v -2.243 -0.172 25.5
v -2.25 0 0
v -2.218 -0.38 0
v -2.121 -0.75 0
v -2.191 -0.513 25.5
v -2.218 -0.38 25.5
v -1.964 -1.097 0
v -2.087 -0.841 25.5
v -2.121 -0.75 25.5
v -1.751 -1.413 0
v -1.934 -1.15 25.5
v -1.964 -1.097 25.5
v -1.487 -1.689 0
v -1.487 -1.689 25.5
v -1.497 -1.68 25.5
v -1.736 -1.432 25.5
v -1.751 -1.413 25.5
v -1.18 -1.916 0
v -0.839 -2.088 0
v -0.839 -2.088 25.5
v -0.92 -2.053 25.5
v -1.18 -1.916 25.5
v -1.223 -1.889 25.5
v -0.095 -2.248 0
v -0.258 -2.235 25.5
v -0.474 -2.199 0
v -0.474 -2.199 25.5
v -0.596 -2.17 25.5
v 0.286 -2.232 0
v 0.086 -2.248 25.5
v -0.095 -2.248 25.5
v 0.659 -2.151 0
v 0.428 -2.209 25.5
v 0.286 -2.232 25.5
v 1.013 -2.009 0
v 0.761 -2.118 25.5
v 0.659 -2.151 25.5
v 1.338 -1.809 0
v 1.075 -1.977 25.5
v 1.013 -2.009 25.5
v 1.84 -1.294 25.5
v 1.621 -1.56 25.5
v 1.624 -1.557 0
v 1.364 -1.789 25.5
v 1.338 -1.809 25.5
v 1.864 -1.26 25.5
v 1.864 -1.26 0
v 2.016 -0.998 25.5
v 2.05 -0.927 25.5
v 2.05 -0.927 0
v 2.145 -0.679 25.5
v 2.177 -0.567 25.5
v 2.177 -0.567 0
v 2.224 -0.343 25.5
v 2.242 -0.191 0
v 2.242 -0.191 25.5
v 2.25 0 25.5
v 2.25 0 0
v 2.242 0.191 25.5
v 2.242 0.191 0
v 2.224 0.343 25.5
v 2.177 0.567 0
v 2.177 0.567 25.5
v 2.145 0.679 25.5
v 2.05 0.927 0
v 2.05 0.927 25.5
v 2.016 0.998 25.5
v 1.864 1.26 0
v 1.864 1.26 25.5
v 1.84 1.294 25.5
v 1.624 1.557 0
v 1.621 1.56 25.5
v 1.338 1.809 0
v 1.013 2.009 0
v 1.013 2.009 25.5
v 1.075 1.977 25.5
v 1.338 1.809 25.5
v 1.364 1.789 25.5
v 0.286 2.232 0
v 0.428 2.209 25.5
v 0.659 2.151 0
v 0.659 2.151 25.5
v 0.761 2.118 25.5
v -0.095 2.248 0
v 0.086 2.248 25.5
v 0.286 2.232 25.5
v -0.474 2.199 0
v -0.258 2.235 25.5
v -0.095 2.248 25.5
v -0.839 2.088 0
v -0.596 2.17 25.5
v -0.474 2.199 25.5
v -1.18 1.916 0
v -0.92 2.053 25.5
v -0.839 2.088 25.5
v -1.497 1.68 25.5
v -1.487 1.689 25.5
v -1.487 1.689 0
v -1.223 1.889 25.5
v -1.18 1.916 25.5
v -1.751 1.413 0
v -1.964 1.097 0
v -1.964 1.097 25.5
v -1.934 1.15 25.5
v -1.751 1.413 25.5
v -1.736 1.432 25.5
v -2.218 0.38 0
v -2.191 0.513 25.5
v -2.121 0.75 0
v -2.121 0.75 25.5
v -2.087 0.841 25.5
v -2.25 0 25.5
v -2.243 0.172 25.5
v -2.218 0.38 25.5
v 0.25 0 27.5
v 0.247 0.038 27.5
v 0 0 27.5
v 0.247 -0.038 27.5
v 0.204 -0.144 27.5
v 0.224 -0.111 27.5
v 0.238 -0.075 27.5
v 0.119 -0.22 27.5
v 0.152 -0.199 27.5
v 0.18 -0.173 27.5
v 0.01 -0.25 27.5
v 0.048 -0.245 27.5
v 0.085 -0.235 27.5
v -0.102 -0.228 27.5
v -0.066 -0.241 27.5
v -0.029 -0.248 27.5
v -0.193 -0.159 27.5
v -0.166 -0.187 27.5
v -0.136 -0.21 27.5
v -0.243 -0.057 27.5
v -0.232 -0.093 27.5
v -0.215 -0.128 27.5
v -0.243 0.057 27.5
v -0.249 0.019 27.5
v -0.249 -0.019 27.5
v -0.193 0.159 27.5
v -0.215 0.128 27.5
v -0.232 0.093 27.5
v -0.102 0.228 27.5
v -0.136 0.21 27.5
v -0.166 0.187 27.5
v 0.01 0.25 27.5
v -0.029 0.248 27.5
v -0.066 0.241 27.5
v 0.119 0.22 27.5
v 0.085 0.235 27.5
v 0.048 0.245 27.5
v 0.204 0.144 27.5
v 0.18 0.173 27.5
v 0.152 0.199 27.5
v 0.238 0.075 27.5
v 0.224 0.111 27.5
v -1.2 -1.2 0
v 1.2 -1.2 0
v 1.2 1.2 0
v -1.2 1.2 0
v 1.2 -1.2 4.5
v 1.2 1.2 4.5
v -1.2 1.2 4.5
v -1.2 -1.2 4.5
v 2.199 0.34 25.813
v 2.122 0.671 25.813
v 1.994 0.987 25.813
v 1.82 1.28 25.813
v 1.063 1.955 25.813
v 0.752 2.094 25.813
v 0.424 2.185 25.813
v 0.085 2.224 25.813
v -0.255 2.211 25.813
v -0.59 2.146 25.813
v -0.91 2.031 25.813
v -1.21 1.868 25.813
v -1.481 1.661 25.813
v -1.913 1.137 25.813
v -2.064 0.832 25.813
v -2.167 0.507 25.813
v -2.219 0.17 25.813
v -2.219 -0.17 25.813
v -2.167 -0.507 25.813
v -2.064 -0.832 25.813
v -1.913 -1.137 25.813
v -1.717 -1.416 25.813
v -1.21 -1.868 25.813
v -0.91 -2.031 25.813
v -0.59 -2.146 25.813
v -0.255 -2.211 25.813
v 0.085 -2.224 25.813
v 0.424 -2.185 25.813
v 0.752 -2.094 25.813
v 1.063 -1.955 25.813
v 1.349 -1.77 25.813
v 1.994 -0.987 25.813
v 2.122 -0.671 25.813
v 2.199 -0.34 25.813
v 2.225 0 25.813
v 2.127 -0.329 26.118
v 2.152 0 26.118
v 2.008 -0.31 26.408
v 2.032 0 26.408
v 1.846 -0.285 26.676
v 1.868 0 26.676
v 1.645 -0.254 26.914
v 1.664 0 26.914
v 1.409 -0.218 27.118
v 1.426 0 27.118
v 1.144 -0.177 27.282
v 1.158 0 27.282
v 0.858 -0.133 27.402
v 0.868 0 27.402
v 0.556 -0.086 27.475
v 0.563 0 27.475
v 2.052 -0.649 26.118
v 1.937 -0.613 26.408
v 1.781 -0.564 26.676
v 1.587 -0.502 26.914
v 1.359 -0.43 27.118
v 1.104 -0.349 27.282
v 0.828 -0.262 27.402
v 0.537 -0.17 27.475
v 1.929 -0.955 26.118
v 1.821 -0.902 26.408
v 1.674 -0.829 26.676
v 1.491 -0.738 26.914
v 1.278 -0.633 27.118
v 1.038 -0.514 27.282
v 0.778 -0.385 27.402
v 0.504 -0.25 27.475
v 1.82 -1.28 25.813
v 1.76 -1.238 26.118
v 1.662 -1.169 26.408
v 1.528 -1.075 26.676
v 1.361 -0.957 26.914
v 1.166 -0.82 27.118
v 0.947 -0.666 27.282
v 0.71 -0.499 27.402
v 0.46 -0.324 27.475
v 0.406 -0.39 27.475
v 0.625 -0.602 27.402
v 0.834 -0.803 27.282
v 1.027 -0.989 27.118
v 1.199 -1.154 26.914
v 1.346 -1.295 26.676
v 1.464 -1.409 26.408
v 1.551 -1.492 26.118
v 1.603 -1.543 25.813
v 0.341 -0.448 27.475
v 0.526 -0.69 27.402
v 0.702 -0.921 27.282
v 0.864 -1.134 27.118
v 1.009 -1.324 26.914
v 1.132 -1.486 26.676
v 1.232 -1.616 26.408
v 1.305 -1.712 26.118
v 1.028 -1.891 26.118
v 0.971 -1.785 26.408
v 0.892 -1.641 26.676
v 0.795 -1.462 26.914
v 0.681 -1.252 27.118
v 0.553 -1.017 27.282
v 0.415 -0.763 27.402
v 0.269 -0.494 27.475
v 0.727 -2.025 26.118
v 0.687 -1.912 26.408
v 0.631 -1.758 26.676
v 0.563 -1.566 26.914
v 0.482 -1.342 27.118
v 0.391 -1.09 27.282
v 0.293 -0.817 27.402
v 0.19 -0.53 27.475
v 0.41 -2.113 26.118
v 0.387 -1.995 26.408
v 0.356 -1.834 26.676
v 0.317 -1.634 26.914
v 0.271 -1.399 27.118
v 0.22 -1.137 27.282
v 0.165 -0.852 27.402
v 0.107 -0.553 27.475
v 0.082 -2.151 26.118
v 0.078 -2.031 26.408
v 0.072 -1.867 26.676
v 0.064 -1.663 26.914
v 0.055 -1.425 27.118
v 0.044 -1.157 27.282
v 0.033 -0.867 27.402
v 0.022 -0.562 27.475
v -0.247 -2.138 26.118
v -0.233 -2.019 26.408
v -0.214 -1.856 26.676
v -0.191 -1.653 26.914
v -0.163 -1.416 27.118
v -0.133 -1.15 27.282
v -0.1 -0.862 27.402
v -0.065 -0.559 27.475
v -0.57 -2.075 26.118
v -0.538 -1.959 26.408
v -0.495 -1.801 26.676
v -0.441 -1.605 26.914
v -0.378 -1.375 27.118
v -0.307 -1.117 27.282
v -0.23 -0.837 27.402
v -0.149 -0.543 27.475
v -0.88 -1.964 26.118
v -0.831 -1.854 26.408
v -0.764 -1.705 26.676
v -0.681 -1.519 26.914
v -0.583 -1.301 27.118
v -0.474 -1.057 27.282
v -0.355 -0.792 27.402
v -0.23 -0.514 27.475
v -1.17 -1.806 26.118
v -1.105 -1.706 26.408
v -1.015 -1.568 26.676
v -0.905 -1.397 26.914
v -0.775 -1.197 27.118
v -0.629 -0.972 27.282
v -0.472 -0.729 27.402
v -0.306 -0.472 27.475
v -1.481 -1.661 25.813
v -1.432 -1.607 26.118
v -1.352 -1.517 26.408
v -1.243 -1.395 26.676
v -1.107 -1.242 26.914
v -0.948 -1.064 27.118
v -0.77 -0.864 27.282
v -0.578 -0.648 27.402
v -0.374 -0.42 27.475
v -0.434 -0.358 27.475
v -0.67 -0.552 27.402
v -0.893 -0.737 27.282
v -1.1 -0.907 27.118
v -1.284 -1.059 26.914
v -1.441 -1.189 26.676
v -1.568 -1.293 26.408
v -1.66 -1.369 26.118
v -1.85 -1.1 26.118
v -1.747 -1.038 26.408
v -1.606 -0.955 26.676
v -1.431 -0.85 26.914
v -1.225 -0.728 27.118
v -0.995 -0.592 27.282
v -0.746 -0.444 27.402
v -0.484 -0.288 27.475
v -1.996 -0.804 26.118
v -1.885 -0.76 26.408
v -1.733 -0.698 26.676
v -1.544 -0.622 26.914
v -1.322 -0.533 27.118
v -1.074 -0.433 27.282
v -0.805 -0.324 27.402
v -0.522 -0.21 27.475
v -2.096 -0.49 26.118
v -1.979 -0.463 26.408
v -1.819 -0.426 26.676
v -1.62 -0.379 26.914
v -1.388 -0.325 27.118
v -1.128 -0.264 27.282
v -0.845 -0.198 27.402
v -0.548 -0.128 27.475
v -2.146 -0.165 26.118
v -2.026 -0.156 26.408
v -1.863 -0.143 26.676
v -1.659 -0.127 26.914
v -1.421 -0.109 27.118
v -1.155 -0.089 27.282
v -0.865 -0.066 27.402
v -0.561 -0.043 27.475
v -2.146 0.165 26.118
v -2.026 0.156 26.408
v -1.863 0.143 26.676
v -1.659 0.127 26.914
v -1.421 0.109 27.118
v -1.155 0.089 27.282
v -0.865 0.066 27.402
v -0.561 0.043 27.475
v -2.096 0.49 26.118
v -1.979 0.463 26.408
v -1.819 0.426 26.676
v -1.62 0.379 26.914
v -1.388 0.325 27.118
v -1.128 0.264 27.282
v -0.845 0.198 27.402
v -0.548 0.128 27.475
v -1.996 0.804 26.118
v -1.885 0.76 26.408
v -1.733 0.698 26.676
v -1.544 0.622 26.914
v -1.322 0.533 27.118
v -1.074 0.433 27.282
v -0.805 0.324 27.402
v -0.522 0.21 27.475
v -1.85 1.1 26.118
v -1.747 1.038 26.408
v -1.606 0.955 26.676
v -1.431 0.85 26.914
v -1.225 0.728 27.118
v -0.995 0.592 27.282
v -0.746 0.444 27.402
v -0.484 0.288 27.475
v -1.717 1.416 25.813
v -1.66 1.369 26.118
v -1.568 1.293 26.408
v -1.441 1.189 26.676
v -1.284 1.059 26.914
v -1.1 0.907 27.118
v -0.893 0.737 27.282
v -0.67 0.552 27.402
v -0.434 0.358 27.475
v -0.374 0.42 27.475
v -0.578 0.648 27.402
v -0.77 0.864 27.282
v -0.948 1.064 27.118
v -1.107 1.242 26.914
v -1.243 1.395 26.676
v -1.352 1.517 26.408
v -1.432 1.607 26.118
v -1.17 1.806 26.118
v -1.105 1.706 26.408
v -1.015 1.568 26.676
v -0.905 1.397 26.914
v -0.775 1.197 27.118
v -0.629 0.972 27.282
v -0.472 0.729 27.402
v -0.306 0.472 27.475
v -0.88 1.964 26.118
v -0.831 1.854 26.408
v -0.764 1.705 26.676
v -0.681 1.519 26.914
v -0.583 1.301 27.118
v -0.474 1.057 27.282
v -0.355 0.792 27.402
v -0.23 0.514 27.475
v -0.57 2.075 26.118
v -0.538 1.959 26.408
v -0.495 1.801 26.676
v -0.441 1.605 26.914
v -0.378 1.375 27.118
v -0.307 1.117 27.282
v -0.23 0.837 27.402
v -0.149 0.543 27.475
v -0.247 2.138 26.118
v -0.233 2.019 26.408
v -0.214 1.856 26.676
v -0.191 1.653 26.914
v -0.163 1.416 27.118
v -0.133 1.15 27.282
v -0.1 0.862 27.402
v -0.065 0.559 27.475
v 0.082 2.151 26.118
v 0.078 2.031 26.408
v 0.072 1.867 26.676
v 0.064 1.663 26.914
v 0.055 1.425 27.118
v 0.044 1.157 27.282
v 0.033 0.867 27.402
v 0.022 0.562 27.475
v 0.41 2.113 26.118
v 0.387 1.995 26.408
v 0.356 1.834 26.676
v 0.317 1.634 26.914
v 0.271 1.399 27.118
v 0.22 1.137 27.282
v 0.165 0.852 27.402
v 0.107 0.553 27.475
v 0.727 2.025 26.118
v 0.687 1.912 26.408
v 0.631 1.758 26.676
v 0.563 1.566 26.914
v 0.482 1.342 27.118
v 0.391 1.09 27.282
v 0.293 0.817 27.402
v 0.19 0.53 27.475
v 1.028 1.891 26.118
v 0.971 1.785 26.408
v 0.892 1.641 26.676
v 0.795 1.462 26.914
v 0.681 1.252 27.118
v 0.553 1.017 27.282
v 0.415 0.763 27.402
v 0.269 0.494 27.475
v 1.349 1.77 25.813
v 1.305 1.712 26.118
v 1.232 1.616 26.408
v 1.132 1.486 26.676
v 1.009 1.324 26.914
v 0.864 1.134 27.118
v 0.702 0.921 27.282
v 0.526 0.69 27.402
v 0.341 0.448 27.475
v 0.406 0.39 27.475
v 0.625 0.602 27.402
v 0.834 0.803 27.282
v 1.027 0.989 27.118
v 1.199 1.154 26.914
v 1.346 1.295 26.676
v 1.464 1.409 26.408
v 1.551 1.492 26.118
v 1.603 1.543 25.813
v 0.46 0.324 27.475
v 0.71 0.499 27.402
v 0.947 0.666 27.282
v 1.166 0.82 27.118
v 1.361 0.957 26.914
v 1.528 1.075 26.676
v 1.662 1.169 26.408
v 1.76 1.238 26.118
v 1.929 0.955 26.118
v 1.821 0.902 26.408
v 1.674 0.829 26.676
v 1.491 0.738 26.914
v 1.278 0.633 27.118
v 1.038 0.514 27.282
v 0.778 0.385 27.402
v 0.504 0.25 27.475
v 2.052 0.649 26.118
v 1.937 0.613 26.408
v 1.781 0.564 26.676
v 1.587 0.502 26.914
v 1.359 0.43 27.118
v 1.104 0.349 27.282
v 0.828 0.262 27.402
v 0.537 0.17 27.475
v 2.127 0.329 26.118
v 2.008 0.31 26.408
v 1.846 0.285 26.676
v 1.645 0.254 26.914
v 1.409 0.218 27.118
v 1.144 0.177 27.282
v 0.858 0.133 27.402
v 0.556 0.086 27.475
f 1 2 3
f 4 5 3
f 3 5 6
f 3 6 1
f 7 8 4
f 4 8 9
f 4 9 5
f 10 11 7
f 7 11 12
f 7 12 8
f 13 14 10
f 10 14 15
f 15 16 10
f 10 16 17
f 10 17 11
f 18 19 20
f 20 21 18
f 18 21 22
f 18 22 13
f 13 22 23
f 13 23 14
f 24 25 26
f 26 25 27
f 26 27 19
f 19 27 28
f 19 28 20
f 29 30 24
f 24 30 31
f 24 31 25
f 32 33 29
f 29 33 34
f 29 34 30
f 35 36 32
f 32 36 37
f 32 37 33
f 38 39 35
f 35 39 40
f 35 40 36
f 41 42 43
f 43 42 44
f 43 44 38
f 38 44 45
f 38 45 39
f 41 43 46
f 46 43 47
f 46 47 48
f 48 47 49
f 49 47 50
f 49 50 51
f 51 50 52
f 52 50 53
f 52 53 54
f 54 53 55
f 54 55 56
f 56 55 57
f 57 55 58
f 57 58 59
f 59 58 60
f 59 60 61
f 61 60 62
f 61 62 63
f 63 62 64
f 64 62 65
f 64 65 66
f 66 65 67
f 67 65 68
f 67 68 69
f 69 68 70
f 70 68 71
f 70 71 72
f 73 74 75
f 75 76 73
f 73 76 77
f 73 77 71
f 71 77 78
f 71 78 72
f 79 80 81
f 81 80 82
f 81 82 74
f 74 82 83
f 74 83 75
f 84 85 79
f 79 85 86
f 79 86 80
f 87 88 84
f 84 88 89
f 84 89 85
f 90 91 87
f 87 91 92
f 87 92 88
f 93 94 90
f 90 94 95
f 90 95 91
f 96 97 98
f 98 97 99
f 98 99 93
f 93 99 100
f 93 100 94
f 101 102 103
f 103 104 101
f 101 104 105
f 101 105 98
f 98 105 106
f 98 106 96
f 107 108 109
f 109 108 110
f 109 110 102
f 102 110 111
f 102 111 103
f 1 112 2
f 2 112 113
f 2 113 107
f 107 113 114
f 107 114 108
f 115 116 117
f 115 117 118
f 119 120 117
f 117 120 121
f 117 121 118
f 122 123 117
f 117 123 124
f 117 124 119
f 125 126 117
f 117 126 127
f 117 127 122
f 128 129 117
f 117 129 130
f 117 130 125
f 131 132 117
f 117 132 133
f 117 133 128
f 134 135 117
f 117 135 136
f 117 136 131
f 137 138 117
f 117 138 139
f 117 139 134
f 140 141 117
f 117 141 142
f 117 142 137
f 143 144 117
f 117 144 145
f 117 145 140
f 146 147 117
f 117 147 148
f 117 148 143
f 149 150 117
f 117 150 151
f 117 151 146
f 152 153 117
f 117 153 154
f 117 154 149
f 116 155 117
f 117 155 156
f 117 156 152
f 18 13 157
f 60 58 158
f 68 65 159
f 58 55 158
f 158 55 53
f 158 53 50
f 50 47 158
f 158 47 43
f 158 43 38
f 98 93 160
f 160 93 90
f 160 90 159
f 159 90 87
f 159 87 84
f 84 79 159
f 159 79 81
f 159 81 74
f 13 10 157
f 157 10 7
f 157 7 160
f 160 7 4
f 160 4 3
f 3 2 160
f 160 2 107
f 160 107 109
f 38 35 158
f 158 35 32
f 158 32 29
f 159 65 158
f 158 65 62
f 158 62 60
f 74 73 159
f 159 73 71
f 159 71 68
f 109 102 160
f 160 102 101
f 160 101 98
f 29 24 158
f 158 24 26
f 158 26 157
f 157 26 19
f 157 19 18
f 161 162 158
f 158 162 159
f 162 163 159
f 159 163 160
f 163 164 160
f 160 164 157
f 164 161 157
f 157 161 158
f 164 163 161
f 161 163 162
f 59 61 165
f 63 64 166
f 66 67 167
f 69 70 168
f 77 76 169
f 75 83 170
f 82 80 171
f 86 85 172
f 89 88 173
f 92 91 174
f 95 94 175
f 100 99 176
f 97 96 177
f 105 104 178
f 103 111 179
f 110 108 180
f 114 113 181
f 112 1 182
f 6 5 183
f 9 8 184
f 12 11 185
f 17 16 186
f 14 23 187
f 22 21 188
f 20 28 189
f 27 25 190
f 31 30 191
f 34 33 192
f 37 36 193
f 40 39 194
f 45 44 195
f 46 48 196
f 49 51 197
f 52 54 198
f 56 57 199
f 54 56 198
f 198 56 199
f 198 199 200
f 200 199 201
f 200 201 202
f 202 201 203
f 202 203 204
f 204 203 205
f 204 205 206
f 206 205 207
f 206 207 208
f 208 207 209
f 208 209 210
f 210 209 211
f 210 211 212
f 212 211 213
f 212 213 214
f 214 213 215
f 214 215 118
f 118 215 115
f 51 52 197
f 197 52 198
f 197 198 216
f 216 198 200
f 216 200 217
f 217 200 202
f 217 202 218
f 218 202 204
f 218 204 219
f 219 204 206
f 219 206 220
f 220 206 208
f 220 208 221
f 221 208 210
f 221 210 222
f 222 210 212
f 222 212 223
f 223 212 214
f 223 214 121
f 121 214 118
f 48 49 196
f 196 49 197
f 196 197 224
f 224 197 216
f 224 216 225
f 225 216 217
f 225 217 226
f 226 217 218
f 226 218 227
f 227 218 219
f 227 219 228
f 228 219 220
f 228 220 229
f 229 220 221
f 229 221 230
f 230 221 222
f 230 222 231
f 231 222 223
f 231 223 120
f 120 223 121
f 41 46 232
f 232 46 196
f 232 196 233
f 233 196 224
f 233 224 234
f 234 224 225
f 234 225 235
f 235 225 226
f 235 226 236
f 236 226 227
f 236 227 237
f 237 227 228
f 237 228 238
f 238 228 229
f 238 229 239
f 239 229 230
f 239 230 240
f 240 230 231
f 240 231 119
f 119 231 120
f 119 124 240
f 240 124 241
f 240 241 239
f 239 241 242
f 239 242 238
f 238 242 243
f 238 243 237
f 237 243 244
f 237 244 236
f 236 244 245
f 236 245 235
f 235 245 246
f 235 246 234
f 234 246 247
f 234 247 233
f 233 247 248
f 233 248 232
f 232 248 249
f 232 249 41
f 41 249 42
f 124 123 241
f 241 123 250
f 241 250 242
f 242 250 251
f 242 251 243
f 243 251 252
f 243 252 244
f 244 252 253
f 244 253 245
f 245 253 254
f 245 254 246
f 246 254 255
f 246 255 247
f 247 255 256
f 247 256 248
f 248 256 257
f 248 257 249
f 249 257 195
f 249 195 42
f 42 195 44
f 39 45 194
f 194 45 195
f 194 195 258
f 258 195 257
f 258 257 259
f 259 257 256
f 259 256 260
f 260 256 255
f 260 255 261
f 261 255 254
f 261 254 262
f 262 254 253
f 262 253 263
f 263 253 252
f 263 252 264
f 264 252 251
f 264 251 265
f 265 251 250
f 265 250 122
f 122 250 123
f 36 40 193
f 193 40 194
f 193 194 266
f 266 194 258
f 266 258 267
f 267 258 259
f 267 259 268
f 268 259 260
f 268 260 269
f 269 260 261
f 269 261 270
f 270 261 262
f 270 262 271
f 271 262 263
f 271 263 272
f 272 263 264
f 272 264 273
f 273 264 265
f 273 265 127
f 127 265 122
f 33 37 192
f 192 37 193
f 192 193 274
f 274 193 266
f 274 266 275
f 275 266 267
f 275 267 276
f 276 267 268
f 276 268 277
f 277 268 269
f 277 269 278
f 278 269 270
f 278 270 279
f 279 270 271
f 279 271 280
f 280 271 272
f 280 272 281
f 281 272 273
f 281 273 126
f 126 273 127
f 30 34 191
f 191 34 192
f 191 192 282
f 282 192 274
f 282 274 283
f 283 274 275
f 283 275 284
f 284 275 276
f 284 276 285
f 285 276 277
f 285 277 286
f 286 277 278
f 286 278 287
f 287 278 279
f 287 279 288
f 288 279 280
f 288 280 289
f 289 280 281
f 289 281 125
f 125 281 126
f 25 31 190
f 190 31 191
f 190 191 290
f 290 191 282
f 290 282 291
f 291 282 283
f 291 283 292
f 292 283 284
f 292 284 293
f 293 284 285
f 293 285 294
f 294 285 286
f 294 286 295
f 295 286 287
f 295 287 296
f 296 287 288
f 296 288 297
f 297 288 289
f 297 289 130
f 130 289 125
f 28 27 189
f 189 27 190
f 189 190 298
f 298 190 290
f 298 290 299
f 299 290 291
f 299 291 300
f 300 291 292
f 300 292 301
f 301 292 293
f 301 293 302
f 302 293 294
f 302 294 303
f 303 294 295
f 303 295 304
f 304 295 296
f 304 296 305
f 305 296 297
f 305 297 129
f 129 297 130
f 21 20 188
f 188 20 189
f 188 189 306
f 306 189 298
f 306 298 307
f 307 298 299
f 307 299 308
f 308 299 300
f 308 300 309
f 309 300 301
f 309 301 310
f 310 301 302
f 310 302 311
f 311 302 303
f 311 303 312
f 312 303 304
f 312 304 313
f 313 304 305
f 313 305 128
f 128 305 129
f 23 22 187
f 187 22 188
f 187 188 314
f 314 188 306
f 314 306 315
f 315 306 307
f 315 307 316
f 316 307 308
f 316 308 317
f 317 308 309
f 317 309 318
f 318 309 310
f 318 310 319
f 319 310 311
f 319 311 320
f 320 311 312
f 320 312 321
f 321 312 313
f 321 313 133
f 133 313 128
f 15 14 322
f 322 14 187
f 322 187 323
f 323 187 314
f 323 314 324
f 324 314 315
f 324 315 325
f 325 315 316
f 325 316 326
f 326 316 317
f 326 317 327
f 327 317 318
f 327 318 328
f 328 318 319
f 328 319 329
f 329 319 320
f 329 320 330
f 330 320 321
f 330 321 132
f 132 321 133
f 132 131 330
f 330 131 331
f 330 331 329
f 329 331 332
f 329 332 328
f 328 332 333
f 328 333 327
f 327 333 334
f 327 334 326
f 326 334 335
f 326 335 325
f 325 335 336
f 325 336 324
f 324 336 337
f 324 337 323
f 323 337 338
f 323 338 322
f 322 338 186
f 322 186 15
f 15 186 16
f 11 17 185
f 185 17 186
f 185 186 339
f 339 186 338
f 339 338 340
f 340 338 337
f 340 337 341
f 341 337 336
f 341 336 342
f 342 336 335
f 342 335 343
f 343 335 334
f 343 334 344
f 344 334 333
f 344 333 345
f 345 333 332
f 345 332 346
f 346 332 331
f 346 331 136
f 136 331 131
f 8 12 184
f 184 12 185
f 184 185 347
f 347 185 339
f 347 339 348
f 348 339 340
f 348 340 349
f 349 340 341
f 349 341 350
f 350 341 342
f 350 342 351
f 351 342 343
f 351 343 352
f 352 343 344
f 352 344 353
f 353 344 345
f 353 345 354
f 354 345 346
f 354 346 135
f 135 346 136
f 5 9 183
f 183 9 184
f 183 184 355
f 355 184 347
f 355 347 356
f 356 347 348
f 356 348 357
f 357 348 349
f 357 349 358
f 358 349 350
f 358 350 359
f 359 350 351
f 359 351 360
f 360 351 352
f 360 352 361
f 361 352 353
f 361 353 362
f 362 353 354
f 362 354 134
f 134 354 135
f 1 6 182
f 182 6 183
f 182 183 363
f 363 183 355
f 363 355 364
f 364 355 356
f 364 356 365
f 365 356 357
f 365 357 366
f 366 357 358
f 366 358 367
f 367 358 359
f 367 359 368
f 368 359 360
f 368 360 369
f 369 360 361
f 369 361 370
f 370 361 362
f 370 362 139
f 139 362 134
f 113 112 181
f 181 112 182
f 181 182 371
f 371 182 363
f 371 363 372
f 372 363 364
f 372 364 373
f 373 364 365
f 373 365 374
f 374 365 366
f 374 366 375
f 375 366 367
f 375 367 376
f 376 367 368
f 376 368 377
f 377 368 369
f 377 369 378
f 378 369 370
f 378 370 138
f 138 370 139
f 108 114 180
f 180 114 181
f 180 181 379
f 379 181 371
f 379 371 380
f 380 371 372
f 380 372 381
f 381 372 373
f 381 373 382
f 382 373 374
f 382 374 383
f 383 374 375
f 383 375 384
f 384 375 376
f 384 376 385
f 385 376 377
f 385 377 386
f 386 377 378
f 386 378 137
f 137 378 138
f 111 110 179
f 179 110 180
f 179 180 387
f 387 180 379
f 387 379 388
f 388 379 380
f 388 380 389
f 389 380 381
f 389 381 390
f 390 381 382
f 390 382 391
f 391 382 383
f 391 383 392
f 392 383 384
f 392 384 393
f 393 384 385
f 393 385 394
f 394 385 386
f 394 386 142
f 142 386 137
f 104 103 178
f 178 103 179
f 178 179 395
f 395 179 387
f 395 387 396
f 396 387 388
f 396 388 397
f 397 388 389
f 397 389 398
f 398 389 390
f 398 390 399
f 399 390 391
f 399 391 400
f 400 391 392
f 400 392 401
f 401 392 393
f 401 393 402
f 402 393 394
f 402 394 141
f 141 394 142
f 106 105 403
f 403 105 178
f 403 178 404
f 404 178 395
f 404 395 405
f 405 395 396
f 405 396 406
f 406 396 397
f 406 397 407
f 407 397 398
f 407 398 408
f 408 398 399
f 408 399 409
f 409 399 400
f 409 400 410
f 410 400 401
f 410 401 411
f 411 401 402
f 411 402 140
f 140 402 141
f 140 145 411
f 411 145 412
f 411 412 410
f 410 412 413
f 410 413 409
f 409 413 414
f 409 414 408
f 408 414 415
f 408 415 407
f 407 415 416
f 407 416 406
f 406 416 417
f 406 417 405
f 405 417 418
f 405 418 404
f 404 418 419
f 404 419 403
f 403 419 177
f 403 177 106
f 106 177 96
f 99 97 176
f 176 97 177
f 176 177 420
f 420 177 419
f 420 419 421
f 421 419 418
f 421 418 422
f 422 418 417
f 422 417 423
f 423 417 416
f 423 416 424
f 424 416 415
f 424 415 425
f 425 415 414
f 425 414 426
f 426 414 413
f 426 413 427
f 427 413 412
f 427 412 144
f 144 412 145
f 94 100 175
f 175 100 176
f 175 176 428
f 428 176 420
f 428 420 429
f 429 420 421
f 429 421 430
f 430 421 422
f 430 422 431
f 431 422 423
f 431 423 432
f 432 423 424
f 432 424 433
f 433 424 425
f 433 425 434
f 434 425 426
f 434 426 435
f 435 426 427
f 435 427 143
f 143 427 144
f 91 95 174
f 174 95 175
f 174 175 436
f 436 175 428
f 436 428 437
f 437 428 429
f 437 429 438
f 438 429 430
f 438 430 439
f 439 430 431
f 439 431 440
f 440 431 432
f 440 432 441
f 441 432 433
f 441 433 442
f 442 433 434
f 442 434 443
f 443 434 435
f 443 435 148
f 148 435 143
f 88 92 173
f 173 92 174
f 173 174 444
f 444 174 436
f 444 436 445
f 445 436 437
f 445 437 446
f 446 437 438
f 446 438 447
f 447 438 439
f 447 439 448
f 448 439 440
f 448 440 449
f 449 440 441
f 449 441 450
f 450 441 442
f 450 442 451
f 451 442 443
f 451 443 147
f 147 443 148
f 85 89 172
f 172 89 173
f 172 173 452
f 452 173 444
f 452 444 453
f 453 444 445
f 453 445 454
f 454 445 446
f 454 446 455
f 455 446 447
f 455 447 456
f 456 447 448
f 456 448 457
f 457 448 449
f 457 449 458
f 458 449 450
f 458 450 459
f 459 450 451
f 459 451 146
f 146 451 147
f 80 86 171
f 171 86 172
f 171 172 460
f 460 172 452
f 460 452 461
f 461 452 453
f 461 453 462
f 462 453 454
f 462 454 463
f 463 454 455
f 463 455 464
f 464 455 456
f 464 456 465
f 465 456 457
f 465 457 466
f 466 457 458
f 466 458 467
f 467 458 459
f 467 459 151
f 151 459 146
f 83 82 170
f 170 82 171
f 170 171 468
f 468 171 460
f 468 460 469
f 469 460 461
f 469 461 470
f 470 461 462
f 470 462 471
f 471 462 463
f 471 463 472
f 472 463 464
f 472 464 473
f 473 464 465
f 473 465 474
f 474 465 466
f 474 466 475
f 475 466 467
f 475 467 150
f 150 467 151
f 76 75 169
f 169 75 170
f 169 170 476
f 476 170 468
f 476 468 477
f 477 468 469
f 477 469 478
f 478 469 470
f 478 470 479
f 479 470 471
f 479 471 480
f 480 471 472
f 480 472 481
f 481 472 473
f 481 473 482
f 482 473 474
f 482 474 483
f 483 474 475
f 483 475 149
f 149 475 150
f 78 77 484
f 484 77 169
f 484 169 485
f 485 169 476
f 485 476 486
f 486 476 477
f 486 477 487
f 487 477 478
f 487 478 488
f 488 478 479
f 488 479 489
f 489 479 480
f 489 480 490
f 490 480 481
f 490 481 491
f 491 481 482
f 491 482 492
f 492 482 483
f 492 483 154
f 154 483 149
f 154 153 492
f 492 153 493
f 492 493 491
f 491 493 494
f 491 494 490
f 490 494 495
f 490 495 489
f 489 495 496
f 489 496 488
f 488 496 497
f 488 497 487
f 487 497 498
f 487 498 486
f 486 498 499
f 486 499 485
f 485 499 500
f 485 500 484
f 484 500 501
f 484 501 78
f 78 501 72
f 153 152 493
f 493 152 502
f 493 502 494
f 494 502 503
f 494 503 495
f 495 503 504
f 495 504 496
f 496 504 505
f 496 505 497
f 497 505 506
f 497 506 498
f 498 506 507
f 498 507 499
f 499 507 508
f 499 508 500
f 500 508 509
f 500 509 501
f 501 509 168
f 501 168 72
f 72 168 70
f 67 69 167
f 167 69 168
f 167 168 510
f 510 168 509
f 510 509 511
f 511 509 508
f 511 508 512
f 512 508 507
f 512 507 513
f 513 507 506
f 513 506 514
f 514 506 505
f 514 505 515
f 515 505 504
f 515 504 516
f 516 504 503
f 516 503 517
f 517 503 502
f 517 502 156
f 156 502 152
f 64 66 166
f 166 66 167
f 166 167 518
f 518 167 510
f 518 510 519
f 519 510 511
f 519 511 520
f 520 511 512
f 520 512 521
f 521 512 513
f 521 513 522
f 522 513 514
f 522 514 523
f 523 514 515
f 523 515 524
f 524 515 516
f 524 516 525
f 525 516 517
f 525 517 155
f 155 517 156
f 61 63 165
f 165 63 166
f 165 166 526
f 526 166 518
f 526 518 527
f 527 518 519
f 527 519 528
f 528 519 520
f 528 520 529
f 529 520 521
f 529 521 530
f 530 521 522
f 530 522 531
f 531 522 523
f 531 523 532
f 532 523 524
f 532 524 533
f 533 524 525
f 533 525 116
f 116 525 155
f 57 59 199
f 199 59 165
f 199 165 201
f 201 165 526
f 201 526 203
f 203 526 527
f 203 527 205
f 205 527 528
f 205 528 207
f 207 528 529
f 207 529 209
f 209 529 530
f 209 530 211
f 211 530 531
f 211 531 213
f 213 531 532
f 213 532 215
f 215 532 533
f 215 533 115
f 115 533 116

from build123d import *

# Parameters (mm, degrees)
SKETCH_1_R          = 2.25
EXTRUDE_2_DEPTH     = 27.5
SKETCH_7_W          = 2.4
SKETCH_7_H          = 2.4
CUT_EXTRUDE_3_DEPTH = 4.5
FILLET_2_R          = 2


with BuildPart() as part:
    # 草图1 → 凸台-拉伸2 (new body)
    with BuildSketch(Plane.XY):
        Circle(SKETCH_1_R)
    extrude(amount=EXTRUDE_2_DEPTH)

    # 草图7 → 切除-拉伸3 (cut)
    with BuildSketch(Plane.XY):
        Rectangle(SKETCH_7_W, SKETCH_7_H)
    extrude(amount=CUT_EXTRUDE_3_DEPTH, mode=Mode.SUBTRACT)

    # 圆角2
    fillet_2_edges = [part.edges().sort_by_distance(p)[0] for p in [
        (-2.25, 0, 27.5),
    ]]
    fillet(fillet_2_edges, radius=FILLET_2_R)


solid = part.part
